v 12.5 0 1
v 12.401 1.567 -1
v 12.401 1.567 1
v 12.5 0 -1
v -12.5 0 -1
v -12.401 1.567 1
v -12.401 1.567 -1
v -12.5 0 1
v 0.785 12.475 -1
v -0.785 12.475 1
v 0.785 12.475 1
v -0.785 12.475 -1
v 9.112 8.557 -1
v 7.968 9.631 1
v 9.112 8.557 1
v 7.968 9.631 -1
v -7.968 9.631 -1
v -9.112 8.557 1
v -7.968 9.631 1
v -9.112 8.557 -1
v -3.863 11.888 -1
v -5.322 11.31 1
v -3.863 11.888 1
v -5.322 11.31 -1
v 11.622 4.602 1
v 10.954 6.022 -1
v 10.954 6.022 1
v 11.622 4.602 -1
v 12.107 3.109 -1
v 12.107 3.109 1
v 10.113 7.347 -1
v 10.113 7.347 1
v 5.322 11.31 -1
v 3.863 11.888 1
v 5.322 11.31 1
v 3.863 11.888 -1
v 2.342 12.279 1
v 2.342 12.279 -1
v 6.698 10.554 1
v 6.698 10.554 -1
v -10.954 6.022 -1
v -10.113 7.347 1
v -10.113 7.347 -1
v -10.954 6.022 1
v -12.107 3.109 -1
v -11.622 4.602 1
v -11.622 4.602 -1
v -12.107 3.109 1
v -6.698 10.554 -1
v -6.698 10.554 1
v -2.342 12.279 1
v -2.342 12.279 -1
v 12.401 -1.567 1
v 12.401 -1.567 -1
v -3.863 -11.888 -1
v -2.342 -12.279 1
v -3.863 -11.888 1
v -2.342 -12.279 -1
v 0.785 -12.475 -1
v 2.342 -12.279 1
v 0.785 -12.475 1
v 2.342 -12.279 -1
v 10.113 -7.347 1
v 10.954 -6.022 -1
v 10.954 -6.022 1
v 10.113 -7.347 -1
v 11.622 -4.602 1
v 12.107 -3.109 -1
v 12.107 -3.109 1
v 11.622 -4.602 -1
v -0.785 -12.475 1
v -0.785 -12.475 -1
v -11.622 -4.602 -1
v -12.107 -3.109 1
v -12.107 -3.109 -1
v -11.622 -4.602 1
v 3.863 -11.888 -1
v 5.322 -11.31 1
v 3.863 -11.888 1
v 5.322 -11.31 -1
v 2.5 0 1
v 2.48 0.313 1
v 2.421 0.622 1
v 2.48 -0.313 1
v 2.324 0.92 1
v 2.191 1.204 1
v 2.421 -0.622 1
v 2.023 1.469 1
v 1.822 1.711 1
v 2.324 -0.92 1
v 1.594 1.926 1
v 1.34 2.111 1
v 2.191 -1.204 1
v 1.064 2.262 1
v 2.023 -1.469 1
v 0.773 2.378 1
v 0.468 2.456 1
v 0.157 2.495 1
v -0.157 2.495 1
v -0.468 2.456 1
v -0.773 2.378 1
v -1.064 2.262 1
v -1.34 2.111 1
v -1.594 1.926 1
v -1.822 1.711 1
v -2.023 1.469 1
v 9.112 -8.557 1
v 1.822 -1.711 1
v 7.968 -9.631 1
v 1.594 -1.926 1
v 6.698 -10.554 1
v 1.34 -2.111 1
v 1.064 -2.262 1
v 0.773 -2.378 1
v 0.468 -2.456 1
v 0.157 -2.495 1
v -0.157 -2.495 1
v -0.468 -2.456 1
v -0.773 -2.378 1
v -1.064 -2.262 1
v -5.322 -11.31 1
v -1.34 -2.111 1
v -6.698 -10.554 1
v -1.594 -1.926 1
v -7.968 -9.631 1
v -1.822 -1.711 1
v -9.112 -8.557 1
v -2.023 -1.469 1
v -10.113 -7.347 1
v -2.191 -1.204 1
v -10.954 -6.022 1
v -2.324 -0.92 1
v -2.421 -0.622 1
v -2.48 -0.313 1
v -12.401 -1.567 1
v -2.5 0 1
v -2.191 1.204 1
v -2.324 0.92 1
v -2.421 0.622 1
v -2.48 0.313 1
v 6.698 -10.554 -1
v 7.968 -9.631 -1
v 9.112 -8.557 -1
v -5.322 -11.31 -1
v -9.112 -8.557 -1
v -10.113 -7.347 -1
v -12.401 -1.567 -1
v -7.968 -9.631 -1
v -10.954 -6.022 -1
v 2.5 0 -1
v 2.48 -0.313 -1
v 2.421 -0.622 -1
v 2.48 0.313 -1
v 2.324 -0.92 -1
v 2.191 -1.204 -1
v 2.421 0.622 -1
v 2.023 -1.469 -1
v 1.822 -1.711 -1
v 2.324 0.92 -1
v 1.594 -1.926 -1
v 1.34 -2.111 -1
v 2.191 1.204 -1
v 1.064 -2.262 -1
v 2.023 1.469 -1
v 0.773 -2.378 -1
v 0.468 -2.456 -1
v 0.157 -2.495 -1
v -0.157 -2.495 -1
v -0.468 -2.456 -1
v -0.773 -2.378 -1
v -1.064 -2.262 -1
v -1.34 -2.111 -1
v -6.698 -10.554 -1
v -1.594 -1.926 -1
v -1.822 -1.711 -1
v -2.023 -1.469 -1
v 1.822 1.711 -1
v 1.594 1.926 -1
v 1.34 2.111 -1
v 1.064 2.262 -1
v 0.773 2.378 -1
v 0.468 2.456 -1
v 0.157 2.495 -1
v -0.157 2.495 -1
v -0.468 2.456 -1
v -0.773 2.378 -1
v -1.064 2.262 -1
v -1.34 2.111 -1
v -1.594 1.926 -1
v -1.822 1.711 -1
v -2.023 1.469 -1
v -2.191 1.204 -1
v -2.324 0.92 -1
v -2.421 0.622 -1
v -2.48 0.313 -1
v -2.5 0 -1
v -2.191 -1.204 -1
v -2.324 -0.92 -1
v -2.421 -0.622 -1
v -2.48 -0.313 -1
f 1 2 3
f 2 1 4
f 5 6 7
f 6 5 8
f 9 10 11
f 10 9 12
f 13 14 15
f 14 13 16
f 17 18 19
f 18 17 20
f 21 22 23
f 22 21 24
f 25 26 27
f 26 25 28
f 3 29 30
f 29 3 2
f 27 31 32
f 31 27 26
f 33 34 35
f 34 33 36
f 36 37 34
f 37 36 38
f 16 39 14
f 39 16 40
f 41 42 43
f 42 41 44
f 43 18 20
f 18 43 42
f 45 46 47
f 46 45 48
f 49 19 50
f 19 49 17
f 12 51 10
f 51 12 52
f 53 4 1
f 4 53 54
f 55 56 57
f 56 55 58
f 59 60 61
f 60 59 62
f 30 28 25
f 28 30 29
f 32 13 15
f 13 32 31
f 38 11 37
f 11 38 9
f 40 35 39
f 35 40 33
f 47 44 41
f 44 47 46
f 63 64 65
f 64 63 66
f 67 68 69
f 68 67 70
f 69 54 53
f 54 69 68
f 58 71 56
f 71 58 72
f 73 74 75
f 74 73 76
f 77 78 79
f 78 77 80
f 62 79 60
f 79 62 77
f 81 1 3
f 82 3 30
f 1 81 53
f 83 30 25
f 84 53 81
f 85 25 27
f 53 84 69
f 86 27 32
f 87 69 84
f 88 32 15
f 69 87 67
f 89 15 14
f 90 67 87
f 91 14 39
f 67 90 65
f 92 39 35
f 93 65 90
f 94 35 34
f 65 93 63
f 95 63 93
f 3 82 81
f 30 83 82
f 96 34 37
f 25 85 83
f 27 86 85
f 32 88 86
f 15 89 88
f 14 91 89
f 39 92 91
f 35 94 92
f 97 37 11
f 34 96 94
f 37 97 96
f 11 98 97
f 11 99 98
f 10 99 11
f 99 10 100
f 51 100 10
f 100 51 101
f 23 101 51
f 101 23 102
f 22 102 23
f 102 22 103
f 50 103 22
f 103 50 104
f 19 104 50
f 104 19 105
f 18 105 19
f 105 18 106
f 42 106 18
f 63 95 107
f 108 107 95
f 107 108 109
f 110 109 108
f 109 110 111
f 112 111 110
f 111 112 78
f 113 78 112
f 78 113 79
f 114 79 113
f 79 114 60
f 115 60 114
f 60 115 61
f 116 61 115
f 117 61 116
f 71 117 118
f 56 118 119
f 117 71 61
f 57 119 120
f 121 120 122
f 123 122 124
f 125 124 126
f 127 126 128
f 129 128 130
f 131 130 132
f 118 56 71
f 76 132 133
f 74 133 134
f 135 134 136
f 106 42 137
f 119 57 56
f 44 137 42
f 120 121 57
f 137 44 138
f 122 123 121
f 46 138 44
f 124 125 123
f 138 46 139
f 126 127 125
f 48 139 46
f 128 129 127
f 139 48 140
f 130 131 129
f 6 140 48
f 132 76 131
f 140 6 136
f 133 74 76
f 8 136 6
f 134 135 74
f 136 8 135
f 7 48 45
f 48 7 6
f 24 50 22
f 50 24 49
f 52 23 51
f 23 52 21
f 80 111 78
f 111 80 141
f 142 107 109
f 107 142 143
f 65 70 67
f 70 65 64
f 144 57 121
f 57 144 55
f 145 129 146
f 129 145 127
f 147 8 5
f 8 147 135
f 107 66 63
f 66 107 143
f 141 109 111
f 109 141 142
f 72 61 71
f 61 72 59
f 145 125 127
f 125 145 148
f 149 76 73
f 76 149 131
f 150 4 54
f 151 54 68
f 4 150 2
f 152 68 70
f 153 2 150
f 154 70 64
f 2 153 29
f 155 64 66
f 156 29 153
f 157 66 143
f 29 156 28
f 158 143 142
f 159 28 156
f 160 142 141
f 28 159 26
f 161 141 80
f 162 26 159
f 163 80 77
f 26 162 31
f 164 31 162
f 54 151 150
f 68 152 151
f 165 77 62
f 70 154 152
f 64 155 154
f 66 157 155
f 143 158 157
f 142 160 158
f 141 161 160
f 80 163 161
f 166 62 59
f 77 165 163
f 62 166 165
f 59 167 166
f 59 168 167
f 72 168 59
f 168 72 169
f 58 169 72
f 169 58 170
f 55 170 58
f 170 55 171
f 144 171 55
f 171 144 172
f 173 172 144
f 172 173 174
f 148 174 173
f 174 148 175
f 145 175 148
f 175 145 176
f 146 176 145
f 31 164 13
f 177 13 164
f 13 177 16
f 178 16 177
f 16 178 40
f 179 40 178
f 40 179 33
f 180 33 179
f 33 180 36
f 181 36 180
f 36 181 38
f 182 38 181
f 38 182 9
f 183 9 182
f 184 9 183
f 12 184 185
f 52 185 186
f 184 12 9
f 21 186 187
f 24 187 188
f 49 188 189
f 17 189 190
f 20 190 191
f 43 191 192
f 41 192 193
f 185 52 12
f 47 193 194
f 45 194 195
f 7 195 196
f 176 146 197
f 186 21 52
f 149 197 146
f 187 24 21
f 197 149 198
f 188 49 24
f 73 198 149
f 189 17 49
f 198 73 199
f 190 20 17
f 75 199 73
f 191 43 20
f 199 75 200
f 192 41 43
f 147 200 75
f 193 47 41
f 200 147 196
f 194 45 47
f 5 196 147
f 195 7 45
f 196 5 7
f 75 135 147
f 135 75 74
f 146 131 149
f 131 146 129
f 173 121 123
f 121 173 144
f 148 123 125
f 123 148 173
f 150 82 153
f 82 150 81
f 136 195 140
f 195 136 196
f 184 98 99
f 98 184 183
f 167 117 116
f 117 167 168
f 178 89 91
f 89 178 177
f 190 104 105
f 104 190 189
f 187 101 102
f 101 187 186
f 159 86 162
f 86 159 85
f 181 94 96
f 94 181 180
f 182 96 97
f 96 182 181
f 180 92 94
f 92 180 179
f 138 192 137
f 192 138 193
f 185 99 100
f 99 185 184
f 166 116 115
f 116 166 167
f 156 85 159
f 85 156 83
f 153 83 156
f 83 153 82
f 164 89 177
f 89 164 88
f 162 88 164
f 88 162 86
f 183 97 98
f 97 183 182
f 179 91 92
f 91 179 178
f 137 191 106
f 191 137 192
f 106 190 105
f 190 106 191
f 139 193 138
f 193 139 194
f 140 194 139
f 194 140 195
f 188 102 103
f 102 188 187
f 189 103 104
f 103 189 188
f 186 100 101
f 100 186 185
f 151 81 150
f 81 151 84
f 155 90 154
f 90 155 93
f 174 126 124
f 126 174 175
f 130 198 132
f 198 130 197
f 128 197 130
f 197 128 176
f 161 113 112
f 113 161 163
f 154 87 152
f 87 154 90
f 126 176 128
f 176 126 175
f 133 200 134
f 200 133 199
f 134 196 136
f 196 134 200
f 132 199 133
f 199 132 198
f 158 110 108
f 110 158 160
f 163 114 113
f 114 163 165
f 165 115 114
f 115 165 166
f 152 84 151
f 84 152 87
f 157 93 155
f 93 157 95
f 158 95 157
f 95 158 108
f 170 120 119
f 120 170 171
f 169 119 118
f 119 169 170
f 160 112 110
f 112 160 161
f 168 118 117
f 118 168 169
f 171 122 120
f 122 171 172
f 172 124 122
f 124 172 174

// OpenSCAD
$fn = 50;


difference() {
	union() {
		translate(v = [0, 0, -1.0000000000]) {
			cylinder(h = 2, r = 12.5000000000);
		}
	}
	union() {
		translate(v = [0, 0, -100.0000000000]) {
			cylinder(h = 200, r = 2.5000000000);
		}
	}
}
